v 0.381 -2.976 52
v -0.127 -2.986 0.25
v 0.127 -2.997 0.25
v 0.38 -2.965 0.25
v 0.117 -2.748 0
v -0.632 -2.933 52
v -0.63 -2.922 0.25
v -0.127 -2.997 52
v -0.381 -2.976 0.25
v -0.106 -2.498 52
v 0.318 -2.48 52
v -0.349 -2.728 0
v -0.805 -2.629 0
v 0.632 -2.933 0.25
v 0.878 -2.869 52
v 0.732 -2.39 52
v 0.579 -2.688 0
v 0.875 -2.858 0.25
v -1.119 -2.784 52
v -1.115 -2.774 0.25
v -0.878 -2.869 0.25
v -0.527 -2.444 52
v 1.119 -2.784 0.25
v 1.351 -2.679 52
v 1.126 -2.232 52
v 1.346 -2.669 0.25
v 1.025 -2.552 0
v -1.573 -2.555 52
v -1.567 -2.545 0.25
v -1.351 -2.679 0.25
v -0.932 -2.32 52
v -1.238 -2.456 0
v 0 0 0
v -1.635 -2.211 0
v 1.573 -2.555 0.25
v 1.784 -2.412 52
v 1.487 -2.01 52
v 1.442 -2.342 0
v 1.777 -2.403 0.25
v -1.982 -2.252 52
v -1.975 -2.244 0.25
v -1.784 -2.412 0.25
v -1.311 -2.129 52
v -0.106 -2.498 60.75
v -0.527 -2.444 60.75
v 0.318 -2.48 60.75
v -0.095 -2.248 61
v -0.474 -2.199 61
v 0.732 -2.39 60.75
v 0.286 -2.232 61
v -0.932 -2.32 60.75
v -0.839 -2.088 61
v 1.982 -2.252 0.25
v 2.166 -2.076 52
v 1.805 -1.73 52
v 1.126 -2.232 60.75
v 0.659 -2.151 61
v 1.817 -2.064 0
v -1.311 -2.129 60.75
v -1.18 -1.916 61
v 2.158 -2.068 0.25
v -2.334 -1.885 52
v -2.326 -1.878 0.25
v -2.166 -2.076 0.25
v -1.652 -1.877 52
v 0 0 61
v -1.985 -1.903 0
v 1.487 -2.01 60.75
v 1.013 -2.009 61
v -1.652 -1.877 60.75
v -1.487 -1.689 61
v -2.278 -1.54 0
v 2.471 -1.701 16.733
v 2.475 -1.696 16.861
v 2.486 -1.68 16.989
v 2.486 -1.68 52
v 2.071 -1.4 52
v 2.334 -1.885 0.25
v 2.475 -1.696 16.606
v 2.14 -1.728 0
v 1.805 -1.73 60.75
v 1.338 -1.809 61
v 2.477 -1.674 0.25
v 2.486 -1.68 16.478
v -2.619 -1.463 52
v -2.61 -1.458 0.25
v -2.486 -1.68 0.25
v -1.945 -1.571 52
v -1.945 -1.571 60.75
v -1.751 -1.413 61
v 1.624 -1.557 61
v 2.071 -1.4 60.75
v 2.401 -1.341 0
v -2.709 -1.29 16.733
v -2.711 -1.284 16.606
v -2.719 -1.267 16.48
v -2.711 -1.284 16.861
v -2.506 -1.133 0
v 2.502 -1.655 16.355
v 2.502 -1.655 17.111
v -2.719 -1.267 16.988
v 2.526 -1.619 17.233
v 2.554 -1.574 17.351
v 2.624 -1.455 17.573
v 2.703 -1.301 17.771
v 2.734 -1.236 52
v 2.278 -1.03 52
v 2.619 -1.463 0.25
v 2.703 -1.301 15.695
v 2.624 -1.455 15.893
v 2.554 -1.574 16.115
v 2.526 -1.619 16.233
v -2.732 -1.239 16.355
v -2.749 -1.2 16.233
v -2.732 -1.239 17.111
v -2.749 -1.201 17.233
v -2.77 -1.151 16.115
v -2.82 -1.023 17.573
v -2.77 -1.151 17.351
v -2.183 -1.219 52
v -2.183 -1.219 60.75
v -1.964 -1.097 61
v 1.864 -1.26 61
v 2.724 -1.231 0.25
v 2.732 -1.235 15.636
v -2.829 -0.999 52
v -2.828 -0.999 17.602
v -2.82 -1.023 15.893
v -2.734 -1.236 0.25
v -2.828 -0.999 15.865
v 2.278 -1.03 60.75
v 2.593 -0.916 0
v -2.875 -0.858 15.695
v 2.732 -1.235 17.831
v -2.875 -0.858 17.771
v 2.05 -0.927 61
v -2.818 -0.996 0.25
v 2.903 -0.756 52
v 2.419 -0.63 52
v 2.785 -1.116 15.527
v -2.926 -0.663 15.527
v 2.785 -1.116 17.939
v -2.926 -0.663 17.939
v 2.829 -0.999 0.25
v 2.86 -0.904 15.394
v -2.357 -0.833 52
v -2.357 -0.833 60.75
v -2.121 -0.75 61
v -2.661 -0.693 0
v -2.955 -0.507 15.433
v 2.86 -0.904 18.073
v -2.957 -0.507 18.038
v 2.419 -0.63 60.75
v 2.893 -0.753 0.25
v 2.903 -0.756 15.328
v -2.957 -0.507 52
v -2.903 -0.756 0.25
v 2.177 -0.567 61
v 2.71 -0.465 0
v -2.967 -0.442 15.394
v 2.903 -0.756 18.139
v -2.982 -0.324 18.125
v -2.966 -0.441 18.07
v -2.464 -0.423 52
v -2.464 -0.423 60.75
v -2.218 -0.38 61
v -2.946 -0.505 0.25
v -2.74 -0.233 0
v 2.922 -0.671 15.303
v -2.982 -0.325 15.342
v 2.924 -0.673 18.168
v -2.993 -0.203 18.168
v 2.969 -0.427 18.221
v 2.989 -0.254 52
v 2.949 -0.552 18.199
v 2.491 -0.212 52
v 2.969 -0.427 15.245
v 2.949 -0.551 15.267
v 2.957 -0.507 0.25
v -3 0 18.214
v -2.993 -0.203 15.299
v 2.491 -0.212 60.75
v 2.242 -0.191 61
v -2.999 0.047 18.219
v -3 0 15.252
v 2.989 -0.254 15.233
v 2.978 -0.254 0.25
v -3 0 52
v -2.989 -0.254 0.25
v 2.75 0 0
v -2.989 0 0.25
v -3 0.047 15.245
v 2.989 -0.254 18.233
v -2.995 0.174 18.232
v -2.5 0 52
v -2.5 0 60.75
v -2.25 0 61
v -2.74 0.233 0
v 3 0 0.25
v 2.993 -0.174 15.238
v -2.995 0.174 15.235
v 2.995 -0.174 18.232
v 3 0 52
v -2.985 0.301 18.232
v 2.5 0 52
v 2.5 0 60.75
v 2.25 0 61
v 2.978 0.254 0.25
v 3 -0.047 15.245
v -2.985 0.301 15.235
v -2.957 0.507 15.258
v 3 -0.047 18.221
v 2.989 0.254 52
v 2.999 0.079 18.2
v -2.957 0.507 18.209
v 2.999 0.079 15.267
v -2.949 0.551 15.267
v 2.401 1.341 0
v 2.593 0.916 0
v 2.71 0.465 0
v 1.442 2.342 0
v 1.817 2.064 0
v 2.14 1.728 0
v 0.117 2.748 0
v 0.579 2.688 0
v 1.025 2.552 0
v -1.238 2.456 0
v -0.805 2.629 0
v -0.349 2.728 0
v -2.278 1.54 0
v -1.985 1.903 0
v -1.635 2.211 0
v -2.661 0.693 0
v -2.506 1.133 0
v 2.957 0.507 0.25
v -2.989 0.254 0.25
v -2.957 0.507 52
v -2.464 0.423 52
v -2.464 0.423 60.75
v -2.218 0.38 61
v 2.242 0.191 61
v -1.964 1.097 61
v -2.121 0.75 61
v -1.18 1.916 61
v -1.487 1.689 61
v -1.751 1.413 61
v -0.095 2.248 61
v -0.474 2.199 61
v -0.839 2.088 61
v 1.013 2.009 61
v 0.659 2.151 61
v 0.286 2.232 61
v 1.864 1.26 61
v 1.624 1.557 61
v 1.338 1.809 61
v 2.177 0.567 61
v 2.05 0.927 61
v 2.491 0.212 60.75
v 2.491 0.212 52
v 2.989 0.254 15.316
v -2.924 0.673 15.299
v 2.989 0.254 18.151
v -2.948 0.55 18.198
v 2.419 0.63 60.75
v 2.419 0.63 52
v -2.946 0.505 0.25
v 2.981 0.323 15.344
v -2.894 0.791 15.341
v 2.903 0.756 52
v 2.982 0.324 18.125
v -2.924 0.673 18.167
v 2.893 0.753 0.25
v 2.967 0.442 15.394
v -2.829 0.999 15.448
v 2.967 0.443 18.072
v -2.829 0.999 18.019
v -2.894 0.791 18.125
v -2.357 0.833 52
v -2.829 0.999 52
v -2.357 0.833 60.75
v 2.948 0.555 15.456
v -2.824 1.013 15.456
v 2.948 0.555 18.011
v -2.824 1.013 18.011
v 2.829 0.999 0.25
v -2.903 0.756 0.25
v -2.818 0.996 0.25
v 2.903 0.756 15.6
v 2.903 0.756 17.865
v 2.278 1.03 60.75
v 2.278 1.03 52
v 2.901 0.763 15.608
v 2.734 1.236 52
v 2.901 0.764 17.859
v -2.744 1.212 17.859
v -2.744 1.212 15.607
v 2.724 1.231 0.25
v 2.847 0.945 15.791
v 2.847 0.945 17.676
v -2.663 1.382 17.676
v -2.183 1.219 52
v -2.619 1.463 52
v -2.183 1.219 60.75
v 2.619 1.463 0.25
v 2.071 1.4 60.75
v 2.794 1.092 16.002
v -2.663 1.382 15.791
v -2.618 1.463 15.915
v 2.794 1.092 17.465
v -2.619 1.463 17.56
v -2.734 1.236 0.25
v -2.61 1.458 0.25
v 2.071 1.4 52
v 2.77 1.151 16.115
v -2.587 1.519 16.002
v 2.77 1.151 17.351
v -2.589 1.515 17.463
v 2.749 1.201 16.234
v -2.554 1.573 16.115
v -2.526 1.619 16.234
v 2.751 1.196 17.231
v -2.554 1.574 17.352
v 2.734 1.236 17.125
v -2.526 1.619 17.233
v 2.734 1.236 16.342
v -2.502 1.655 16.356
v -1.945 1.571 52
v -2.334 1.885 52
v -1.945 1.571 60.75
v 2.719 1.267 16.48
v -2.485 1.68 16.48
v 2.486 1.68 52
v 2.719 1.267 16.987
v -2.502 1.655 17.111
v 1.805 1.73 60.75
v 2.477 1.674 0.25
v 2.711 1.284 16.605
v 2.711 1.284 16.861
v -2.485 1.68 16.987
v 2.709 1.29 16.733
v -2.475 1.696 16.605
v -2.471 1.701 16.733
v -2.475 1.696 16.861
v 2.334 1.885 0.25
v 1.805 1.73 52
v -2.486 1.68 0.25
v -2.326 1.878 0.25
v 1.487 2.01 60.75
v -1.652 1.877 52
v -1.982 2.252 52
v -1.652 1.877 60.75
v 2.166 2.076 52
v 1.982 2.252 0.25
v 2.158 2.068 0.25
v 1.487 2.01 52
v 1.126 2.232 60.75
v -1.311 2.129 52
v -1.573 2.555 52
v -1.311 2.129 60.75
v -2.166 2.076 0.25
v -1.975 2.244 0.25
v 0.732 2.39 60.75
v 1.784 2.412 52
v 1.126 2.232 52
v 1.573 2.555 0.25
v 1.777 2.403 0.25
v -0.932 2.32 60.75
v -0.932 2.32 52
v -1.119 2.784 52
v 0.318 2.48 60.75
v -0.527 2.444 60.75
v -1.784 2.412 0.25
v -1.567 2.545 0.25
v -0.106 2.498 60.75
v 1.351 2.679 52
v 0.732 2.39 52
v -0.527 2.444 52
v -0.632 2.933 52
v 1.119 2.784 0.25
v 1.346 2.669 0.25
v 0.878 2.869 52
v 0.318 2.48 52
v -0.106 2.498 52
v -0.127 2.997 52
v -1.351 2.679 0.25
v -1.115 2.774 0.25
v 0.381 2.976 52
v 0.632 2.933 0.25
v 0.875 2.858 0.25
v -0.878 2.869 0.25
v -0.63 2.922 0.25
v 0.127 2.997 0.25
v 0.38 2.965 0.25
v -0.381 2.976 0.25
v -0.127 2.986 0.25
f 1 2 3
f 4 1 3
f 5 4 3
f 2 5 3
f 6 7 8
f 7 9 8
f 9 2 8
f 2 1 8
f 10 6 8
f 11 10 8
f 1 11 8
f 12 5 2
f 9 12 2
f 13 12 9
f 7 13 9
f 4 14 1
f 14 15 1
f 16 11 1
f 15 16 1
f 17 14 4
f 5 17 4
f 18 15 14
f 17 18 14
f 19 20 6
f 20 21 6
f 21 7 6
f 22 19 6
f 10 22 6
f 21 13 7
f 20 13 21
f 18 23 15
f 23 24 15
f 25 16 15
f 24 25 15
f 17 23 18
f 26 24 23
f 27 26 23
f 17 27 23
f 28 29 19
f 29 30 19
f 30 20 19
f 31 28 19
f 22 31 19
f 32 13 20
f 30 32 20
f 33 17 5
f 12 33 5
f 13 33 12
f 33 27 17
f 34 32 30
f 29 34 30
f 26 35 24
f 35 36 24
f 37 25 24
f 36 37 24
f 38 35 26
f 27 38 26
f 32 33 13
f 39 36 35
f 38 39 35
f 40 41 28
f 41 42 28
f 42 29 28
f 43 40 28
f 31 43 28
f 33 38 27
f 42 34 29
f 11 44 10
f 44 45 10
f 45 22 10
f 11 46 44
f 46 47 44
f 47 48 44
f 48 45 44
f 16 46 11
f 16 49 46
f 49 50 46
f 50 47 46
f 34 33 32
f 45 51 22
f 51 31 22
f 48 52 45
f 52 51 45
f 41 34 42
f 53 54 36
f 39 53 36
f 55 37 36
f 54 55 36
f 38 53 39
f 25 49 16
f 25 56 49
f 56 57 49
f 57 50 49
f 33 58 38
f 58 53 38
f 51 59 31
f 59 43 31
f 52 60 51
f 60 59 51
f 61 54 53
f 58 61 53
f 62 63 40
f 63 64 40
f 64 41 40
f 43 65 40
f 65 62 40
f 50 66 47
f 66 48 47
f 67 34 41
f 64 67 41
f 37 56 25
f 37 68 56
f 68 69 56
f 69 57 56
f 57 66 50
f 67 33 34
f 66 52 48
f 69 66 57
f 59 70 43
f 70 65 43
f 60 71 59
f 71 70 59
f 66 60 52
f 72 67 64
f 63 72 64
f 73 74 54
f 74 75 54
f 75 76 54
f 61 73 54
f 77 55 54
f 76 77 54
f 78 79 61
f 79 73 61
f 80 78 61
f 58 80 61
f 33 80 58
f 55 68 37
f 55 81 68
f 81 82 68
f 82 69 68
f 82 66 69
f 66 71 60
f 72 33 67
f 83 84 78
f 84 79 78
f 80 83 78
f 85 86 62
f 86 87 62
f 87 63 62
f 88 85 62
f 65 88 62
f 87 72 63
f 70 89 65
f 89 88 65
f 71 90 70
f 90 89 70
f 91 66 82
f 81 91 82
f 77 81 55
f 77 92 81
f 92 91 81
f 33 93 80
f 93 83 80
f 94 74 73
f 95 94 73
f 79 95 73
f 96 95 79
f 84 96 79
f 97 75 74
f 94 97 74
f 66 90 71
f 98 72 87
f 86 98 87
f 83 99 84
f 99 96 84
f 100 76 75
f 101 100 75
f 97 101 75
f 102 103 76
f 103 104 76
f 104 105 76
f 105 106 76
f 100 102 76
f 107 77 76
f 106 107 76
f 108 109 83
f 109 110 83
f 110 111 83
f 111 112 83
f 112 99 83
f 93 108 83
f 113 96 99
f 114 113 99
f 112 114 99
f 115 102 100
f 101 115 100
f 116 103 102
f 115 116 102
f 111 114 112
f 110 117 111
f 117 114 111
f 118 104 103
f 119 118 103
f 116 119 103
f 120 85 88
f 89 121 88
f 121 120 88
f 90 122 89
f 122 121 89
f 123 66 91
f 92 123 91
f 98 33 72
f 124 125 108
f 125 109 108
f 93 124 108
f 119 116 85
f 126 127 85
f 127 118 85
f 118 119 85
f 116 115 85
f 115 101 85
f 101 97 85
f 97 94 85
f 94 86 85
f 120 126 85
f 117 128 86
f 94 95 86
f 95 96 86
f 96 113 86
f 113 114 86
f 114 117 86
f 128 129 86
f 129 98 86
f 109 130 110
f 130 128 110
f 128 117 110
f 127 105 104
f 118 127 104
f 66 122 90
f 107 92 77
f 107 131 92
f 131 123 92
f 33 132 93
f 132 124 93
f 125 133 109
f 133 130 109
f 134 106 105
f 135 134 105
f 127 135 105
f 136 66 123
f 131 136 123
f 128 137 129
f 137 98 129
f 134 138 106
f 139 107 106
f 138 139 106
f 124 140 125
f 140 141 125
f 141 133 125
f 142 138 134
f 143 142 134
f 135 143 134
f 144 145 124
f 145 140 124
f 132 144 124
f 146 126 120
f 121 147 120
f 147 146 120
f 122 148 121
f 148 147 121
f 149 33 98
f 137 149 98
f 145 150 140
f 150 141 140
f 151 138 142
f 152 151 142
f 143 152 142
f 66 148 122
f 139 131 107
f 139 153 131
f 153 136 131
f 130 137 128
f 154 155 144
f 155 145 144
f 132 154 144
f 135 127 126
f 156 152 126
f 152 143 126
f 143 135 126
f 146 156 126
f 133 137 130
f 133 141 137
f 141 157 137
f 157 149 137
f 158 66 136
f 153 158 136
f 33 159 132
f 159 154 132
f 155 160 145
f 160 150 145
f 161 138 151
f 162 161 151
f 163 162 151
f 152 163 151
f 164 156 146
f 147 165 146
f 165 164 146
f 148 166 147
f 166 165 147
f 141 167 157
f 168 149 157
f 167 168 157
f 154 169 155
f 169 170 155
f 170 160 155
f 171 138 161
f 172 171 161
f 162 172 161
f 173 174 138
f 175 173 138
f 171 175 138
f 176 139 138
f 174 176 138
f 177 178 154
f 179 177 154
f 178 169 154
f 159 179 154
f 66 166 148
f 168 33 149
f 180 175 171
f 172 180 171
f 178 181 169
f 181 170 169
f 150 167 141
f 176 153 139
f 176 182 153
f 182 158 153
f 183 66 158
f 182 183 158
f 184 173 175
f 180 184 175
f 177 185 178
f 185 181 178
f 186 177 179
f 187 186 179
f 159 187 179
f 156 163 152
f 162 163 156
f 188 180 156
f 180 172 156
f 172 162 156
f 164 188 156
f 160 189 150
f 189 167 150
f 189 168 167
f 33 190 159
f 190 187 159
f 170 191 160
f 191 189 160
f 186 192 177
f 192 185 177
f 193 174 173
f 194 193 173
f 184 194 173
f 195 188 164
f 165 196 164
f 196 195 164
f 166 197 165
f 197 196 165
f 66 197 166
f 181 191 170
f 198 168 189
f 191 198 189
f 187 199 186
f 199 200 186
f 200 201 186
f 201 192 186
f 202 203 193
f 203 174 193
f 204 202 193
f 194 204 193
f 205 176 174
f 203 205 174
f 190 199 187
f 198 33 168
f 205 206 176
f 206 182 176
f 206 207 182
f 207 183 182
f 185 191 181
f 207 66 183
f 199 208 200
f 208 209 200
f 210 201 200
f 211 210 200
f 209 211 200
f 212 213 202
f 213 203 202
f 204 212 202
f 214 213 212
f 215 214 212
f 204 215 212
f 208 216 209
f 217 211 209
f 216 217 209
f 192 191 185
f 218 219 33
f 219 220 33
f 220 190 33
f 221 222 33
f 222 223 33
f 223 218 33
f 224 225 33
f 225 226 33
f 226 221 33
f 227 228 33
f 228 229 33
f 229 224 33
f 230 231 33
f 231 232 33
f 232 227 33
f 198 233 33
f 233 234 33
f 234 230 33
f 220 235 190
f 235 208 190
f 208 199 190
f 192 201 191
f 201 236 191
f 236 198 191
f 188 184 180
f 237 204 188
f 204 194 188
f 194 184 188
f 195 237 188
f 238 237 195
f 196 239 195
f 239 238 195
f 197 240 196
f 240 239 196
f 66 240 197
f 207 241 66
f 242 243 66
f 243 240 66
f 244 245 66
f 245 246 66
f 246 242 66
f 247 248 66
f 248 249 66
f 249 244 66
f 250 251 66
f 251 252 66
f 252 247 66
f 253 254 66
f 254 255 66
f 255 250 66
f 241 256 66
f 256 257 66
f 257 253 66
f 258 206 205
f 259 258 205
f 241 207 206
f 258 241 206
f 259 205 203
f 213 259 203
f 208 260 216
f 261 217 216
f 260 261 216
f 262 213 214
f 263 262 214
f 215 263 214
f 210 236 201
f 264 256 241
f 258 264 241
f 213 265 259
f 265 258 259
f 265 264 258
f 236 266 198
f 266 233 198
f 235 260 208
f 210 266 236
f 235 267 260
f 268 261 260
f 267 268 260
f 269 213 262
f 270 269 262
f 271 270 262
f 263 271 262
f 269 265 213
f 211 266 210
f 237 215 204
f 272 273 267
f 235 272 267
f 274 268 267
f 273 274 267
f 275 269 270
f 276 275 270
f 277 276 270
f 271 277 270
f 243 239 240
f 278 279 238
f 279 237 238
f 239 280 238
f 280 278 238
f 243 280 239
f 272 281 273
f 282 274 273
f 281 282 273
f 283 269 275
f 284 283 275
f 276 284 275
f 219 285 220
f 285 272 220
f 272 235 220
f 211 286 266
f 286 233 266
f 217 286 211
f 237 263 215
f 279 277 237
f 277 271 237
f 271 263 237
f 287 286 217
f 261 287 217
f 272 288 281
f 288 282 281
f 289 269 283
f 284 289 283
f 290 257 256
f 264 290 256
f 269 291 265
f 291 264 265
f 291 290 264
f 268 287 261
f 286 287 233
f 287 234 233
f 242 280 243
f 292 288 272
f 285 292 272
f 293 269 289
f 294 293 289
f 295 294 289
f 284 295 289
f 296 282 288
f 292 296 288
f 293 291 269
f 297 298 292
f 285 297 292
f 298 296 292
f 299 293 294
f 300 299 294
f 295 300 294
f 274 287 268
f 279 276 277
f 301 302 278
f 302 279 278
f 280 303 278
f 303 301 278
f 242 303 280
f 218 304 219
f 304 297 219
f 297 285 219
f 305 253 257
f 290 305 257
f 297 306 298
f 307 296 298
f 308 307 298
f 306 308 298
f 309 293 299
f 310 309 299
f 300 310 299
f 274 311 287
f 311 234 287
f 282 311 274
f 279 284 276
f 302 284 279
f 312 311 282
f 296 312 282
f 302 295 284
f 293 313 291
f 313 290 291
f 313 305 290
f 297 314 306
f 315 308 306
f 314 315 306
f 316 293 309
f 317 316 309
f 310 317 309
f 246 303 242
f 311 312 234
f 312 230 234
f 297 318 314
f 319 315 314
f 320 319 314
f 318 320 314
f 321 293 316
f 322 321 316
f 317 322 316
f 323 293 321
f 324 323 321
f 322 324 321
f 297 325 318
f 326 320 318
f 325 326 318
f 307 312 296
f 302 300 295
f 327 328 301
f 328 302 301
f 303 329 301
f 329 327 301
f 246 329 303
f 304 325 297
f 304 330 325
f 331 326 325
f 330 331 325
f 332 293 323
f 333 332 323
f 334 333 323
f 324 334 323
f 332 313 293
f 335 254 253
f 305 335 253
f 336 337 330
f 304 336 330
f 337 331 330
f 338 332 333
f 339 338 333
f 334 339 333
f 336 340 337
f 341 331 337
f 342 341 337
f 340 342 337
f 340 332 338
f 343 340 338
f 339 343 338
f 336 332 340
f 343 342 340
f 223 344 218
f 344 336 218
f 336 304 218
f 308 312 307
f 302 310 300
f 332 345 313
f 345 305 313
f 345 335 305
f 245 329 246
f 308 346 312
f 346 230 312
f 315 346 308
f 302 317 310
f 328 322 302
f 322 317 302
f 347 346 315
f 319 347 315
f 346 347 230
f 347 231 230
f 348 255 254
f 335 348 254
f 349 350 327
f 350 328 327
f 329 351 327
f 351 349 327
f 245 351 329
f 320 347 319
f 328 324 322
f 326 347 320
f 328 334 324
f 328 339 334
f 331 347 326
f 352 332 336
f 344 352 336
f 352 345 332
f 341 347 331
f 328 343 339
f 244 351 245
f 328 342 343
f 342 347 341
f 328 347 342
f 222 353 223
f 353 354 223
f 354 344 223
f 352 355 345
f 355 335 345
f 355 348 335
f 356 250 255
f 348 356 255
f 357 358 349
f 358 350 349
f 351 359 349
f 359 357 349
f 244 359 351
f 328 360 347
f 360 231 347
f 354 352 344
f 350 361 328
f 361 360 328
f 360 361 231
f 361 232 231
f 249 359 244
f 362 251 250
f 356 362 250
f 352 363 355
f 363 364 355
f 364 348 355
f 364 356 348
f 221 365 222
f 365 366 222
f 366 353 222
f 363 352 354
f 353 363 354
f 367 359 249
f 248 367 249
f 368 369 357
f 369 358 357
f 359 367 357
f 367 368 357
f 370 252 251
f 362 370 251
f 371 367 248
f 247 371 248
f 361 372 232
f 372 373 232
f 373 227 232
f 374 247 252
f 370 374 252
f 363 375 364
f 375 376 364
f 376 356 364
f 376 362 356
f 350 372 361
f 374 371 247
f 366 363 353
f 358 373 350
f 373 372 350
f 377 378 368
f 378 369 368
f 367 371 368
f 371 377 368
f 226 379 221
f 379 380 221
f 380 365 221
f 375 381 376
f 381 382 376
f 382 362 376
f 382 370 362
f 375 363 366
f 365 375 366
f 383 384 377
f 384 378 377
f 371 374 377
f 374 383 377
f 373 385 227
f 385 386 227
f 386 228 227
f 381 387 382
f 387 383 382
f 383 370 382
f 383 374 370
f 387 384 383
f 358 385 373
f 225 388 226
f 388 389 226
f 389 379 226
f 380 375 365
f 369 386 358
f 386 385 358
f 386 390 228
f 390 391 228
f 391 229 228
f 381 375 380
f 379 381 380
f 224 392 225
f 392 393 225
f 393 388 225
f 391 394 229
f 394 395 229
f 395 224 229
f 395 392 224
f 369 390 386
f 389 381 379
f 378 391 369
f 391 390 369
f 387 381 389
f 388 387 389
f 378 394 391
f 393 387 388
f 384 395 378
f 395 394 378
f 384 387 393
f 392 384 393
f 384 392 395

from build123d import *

# Parameters (mm, degrees)
SKETCH1_R             = 3
BOSS_EXTRUDE1_DEPTH   = 52
SKETCH2_R             = 2.5
BOSS_EXTRUDE2_DEPTH   = 9
CHAMFER1_SIZE         = 0.25
CHAMFER2_SIZE         = 0.25
F_3_0MM_DOWEL_HOLE1_D = 3


with BuildPart() as part:
    # Sketch1 → Boss-Extrude1 (new body)
    with BuildSketch(Plane.XY):
        with Locations(Location((0, 0, 0), (0, 0, 180))):
            Circle(SKETCH1_R)
    extrude(amount=BOSS_EXTRUDE1_DEPTH)

    # Sketch2 → Boss-Extrude2 (add)
    with BuildSketch(Plane.XY.offset(52)):
        Circle(SKETCH2_R)
    extrude(amount=BOSS_EXTRUDE2_DEPTH)

    # Chamfer1
    chamfer1_edges = [part.edges().sort_by_distance(p)[0] for p in [
        (-2.5, 0, 61),
    ]]
    chamfer(chamfer1_edges, length=CHAMFER1_SIZE)

    # Chamfer2
    chamfer2_edges = [part.edges().sort_by_distance(p)[0] for p in [
        (3, 0, 0),
    ]]
    chamfer(chamfer2_edges, length=CHAMFER2_SIZE)

    # Ø3.0mm Dowel Hole1 (through all)
    with Locations(Plane(origin=(2.990601236, -0.237285162, 16.733200531), x_dir=(0.079095054135, 0.996867078607, 0), z_dir=(0.996867078607, -0.079095054135, 0))):
        with Locations((0, 0)):
            Hole(F_3_0MM_DOWEL_HOLE1_D / 2)


solid = part.part
